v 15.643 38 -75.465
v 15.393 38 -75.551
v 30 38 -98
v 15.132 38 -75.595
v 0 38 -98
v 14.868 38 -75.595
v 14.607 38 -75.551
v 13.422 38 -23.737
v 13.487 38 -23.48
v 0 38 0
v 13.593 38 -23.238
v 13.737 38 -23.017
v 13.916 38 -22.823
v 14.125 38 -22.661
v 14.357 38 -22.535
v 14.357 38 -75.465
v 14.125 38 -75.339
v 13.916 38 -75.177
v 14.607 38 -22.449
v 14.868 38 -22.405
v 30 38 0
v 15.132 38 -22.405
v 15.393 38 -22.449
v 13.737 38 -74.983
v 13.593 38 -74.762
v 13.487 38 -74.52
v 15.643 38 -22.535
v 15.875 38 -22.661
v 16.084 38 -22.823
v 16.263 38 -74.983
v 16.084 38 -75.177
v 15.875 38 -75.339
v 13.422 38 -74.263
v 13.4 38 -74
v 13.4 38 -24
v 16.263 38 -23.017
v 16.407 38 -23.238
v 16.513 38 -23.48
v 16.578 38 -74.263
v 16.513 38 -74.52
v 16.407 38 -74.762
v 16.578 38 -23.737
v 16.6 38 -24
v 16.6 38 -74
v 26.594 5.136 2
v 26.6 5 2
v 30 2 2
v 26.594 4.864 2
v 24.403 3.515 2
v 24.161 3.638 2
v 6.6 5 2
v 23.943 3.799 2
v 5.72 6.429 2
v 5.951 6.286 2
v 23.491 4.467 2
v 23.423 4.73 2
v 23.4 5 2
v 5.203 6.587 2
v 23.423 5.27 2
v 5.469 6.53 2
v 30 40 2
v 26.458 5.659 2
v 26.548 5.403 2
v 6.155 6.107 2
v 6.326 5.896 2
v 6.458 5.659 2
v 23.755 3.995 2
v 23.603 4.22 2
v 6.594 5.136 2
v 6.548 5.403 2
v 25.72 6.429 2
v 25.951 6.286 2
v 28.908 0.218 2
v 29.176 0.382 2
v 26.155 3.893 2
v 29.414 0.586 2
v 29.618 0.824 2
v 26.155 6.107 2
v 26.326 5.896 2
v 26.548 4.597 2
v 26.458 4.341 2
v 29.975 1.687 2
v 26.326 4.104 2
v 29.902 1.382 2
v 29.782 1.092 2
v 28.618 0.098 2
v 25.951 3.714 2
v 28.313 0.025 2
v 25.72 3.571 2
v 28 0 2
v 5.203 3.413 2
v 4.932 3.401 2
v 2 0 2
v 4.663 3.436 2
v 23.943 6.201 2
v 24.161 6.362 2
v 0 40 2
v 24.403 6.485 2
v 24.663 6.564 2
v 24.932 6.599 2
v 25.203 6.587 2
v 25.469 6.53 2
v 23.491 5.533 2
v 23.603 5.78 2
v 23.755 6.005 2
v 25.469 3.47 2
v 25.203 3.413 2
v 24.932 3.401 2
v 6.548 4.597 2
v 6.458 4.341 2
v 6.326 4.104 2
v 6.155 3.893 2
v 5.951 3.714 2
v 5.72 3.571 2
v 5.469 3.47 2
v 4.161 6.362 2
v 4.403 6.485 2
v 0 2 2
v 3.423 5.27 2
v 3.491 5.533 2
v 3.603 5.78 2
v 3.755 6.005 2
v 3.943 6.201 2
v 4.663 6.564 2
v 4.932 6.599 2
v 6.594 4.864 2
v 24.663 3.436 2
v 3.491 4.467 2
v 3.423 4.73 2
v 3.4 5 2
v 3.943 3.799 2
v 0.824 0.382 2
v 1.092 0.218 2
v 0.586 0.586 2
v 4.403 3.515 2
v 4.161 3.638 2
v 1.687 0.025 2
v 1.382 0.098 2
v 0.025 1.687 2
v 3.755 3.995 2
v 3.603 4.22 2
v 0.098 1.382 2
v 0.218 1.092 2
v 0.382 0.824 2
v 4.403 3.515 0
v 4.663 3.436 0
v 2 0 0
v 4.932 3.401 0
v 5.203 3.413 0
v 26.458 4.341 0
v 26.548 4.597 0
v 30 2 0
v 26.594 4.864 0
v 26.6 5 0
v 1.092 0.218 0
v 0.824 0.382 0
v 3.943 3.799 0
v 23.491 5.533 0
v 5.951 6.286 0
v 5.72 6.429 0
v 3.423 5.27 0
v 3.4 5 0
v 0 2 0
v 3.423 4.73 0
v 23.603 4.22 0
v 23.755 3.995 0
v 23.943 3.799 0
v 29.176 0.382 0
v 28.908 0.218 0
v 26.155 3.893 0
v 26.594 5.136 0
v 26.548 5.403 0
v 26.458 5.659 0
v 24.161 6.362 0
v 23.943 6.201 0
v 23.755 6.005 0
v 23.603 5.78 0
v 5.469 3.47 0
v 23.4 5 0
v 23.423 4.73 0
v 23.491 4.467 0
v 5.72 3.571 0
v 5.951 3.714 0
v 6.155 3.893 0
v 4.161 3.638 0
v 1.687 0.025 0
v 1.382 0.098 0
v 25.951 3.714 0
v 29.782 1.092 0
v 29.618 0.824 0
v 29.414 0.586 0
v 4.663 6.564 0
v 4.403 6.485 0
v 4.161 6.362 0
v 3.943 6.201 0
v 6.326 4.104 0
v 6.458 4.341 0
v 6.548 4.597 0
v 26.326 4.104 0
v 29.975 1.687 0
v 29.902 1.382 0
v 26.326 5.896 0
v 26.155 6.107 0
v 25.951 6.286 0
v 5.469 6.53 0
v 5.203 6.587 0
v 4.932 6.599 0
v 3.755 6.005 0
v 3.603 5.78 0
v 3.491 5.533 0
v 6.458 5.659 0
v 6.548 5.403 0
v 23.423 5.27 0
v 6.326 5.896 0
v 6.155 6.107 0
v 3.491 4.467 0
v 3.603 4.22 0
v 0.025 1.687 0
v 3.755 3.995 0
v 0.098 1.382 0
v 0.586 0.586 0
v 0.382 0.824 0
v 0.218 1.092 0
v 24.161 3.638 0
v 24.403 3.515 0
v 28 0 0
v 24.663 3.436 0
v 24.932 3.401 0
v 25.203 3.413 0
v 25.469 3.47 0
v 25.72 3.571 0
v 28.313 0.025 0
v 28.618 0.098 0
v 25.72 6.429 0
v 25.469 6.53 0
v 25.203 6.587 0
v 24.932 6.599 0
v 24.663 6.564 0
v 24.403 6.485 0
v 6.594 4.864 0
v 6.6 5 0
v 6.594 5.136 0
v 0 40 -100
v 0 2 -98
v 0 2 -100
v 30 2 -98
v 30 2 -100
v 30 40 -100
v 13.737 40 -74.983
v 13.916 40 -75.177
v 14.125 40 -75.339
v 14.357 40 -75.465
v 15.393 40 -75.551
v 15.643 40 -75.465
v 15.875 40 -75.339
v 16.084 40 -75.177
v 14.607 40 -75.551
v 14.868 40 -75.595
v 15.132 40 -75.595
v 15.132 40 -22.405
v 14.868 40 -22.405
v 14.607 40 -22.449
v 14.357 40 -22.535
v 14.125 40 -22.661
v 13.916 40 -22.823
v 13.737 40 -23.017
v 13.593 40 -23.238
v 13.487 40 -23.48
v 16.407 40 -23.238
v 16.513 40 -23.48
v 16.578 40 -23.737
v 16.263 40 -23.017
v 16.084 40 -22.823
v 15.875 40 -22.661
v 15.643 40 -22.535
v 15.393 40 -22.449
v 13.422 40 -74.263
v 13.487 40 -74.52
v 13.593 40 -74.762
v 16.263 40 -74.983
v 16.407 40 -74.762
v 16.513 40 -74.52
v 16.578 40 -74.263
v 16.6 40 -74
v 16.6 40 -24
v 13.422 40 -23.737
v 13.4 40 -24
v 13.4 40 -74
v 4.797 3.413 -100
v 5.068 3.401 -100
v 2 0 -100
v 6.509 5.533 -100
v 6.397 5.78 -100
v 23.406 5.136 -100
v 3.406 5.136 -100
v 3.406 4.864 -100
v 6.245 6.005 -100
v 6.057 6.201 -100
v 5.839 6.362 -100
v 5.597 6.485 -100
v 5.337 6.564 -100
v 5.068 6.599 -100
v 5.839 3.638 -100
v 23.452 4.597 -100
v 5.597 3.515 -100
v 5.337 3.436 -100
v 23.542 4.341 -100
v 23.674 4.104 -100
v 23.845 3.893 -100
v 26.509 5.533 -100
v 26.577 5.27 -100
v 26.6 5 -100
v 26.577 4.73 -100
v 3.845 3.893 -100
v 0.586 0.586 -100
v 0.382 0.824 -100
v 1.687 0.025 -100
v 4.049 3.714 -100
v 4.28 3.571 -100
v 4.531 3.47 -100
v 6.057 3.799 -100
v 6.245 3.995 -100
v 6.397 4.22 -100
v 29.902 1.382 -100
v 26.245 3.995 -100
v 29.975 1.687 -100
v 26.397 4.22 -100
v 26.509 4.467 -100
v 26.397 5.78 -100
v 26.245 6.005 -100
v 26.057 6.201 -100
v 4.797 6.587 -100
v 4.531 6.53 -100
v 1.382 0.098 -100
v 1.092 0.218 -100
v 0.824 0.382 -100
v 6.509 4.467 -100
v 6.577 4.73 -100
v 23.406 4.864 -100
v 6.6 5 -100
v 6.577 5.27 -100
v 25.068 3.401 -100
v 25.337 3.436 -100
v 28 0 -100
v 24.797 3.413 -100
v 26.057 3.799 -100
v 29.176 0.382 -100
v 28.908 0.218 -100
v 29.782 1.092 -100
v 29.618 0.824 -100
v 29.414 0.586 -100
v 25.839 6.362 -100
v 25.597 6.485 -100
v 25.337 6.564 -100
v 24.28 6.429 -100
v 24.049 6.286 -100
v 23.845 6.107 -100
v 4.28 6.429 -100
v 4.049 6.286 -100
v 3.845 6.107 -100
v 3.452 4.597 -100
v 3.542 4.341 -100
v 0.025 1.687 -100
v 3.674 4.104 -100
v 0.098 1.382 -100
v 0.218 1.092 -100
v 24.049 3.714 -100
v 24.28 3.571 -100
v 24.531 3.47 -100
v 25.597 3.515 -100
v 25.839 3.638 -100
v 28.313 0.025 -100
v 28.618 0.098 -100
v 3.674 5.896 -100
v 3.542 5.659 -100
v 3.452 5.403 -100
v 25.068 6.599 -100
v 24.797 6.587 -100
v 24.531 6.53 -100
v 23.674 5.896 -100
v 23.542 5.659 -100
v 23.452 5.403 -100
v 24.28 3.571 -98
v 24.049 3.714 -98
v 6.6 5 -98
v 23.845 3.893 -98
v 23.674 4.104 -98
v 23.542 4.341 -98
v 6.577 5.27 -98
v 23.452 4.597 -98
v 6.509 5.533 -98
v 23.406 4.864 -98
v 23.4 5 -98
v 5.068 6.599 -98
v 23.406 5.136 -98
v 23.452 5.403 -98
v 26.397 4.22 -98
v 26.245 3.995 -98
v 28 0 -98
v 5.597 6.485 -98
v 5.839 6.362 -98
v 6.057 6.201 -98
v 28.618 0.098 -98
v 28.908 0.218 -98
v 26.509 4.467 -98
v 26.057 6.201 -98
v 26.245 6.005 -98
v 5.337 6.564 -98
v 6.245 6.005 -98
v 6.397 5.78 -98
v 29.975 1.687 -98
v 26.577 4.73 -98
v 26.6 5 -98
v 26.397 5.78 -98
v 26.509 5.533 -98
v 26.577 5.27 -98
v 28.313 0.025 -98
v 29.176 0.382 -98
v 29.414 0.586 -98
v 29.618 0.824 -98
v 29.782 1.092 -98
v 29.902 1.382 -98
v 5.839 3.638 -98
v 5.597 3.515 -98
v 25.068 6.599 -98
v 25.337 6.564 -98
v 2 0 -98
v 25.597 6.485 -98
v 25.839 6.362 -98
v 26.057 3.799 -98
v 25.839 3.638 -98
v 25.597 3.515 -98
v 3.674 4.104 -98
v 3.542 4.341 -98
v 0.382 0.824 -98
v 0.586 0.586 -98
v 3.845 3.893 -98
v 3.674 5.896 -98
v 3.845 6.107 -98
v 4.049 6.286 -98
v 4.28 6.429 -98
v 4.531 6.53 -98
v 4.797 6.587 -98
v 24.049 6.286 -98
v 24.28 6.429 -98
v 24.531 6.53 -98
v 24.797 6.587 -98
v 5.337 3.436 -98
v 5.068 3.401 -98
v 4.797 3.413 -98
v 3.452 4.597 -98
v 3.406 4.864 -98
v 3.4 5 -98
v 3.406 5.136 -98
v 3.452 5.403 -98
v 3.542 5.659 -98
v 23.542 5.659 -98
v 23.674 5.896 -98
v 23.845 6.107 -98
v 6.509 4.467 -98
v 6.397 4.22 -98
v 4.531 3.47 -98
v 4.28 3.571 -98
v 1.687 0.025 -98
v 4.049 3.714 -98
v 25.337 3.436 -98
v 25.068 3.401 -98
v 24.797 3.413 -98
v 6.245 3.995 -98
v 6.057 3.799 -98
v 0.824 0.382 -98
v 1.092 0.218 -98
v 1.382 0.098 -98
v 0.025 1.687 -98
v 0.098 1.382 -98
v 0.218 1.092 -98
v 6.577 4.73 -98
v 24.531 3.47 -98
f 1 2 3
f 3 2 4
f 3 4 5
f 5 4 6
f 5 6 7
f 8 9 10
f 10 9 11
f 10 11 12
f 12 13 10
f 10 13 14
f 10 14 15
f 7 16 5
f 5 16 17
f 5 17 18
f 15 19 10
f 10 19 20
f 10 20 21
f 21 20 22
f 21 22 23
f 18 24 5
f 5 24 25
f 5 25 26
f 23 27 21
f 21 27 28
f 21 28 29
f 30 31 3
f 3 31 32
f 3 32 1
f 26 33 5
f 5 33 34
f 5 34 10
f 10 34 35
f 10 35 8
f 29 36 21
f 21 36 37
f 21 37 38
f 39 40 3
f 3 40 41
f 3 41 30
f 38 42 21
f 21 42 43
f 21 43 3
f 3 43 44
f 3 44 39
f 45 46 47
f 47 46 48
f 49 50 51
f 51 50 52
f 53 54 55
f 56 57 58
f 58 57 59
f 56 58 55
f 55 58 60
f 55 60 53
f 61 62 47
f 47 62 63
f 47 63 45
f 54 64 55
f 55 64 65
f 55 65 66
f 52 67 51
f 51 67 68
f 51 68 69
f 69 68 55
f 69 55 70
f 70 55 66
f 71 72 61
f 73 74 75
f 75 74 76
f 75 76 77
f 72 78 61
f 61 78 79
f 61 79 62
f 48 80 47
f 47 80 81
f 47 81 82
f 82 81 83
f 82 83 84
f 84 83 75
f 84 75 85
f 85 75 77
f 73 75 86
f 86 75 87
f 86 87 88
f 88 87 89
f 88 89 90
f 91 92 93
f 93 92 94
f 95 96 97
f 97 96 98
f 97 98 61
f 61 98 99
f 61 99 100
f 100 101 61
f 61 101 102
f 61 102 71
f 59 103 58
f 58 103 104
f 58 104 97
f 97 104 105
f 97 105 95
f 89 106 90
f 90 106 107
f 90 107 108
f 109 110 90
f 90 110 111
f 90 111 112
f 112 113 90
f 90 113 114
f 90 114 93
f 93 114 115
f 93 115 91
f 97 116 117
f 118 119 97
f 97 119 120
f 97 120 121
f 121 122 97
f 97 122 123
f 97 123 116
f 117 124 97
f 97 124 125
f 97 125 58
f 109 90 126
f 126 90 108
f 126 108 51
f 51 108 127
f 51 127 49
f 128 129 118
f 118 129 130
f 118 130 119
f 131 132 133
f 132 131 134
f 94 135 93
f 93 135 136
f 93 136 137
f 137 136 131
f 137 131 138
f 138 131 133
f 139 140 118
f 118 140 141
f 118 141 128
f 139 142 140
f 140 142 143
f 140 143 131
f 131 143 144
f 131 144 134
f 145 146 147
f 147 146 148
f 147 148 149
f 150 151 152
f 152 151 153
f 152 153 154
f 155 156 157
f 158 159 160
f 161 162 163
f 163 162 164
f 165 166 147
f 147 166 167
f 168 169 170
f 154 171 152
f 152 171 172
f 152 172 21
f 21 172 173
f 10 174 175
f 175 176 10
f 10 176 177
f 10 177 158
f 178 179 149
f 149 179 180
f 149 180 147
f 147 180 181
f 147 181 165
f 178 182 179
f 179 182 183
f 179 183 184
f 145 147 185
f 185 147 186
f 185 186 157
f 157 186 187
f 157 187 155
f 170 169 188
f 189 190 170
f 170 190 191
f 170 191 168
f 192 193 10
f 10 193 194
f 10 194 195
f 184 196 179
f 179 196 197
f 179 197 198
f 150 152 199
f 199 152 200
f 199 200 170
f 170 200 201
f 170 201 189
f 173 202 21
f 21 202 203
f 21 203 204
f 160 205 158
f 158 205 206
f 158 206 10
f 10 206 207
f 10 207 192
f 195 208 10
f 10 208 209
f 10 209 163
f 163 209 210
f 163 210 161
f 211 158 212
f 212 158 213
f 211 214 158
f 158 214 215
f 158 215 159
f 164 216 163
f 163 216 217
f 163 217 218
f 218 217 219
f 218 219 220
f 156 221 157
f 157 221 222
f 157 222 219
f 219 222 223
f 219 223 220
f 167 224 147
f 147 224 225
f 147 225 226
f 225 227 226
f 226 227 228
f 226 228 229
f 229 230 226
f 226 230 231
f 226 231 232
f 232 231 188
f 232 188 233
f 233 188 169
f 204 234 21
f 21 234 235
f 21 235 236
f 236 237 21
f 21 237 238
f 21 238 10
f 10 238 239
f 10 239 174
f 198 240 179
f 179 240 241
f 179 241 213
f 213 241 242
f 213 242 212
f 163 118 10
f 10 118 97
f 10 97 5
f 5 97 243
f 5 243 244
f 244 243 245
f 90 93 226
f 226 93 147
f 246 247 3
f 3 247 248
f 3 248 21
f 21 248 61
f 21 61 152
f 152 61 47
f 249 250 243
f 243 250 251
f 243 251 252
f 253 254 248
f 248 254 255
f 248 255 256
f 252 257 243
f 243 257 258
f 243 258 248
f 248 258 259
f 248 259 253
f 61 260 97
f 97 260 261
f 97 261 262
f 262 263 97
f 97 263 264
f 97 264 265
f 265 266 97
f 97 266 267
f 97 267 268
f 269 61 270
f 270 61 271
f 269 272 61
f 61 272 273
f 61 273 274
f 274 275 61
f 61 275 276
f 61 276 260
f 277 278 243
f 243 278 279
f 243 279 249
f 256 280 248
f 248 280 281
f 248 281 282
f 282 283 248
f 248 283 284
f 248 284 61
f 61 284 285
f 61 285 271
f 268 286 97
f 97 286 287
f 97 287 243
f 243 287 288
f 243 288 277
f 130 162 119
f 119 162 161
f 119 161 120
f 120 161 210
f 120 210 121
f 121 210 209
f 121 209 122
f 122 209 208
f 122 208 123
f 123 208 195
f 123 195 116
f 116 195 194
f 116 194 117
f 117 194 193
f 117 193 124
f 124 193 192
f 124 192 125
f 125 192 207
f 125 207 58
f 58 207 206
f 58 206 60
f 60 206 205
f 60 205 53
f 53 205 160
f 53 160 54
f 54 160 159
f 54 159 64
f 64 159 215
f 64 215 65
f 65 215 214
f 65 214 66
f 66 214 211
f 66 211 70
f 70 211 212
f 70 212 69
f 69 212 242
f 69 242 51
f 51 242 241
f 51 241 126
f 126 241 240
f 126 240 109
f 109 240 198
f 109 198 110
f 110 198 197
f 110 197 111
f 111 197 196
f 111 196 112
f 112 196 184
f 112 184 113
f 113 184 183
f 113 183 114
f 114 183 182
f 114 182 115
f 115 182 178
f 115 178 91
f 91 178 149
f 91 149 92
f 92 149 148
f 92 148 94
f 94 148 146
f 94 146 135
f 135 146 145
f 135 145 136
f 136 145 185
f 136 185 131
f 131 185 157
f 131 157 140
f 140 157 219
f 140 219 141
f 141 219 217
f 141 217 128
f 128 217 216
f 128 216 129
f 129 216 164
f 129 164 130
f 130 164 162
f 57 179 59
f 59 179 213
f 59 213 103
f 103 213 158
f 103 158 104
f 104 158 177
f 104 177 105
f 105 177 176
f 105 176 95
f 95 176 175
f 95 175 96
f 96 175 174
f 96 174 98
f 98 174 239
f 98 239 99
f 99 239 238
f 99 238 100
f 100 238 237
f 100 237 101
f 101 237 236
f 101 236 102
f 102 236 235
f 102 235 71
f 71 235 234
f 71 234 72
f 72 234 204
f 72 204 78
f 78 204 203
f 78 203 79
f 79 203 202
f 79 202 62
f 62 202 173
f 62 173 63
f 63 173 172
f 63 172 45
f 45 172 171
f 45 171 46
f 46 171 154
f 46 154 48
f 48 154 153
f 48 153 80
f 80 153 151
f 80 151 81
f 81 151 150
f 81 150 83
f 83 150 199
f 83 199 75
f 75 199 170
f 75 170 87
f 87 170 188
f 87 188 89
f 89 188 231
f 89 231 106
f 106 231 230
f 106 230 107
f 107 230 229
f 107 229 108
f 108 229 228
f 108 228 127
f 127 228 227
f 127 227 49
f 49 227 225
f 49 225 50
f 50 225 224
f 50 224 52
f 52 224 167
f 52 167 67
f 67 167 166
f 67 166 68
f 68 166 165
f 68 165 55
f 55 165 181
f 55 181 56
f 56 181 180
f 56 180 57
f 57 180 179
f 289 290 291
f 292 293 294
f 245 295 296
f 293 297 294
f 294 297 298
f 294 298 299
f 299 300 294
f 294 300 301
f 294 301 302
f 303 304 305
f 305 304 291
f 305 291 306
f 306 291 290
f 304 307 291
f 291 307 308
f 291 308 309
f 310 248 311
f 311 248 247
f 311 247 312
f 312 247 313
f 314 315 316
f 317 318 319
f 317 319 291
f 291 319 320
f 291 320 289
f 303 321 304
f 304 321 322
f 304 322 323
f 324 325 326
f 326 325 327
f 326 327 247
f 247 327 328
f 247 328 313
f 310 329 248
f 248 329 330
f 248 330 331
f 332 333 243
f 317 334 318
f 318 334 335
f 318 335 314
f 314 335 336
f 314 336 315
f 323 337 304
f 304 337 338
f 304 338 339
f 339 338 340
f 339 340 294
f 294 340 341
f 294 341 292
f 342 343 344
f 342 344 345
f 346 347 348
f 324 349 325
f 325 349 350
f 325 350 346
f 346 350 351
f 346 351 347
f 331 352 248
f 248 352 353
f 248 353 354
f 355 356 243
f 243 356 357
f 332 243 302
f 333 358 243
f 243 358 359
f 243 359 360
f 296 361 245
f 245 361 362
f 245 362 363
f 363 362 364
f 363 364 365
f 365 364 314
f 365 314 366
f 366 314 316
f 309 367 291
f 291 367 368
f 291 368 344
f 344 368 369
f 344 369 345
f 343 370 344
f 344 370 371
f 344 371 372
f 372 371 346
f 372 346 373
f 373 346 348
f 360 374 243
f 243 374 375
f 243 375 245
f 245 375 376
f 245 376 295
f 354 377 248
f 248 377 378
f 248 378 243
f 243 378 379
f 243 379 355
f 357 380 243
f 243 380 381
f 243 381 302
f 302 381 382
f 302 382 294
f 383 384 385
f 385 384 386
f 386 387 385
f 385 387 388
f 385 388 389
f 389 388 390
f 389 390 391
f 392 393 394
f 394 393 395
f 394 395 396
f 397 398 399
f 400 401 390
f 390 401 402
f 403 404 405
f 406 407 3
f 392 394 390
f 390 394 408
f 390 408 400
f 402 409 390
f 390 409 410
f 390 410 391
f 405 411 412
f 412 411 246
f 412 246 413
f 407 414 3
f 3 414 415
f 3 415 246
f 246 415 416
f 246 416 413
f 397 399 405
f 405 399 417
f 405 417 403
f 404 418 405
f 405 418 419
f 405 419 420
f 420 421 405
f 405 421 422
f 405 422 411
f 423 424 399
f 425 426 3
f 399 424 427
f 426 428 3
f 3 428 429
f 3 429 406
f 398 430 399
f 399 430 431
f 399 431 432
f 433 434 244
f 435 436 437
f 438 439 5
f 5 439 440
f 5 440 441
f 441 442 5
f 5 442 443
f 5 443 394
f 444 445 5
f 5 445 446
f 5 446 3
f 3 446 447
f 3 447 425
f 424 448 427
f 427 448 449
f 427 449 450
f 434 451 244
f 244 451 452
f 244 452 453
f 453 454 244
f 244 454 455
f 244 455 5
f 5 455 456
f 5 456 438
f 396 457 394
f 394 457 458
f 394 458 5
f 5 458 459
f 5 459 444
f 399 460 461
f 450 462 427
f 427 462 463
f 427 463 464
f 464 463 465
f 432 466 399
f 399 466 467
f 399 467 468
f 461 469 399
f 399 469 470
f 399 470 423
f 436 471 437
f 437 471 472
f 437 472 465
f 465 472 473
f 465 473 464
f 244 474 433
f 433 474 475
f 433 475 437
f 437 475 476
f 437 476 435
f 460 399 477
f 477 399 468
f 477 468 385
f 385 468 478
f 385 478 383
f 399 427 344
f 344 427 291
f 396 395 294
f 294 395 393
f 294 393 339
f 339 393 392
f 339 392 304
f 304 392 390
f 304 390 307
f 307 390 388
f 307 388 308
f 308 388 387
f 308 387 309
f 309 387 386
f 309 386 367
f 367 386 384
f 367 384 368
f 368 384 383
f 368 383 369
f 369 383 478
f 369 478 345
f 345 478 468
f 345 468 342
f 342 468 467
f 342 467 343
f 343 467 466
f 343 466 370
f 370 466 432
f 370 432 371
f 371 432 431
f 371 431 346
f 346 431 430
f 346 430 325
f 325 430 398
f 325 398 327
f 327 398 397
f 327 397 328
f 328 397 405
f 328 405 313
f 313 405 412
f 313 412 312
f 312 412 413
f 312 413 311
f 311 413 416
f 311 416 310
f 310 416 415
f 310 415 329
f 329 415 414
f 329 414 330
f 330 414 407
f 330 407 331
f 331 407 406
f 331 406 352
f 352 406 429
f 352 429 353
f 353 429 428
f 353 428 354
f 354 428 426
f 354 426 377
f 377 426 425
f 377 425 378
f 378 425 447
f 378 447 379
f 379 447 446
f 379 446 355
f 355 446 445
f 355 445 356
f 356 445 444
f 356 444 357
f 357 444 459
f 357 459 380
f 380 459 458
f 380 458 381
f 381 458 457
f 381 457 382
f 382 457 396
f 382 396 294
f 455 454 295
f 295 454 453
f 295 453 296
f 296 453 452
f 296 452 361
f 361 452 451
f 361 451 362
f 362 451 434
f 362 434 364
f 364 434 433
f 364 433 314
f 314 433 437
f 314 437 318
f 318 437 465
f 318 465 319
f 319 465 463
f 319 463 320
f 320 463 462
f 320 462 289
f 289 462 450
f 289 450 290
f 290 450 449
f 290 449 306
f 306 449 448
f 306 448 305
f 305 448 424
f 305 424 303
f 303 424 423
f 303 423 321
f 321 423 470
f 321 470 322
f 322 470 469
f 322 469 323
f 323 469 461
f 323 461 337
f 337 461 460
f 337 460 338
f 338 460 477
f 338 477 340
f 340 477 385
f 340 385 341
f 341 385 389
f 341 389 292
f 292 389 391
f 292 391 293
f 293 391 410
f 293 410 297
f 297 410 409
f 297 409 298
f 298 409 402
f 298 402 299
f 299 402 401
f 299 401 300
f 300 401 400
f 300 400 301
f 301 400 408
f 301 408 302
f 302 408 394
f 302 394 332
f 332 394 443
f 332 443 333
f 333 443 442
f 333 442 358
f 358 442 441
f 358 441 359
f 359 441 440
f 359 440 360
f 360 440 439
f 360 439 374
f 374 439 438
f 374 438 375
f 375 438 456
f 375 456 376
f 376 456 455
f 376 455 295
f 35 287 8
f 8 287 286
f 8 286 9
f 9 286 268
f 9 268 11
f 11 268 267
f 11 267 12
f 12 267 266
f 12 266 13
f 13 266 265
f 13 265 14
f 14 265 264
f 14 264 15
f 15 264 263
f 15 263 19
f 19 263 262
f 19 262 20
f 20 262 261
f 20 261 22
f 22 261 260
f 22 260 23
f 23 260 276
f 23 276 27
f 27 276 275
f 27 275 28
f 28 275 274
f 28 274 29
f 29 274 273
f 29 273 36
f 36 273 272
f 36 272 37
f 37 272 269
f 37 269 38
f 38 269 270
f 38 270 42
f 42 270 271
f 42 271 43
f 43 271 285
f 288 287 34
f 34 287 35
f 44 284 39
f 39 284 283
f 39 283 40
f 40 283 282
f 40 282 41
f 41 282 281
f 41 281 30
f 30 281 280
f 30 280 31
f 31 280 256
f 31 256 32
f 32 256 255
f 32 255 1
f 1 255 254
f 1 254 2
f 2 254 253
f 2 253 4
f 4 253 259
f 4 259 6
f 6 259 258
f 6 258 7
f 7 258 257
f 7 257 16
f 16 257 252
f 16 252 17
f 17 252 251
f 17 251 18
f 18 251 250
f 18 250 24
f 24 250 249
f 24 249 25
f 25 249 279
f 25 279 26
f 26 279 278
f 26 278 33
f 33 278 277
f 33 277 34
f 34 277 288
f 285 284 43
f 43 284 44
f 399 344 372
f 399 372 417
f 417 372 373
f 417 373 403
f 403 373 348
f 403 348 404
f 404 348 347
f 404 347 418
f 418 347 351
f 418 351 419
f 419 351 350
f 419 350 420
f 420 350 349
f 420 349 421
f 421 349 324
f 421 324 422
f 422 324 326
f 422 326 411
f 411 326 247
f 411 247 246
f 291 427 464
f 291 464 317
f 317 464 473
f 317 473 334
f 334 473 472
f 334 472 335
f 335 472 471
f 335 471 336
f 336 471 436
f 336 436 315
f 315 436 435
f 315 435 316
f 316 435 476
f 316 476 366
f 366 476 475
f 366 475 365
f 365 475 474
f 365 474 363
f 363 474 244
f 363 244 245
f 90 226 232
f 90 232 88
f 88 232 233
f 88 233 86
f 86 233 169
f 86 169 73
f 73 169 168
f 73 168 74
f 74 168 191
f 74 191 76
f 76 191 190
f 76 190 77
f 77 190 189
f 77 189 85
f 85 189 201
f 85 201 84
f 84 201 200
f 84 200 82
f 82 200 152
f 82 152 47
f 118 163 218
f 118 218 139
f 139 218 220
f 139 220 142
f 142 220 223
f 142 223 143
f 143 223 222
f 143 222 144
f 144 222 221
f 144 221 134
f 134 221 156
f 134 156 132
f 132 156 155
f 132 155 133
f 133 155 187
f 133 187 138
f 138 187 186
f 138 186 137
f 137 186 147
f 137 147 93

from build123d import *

# Parameters (mm, degrees)
SKETCH_1_W          = 30
SKETCH_1_H          = 40
SKETCH_1_R          = 1.6
EXTRUDE_1_DEPTH     = 2
SKETCH_3_W          = 30
SKETCH_3_H          = 2
EXTRUDE_2_DEPTH     = 100
SKETCH_5_W          = 30
SKETCH_5_H          = 2
EXTRUDE_4_DEPTH     = 38
SKETCH_6_R          = 1.6
CUT_EXTRUDE_1_DEPTH = 114.595774569
CUT_EXTRUDE_2_DEPTH = 2
FILLET_1_R          = 2


with BuildPart() as part:
    # 草图1 → 凸台-拉伸1 (new body)
    with BuildSketch(Plane.XY):
        with Locations((15, 20)):
            Rectangle(SKETCH_1_W, SKETCH_1_H)
        with Locations((5, 5)):
            Circle(SKETCH_1_R, mode=Mode.SUBTRACT)
        with Locations((25, 5)):
            Circle(SKETCH_1_R, mode=Mode.SUBTRACT)
    extrude(amount=EXTRUDE_1_DEPTH)

    # 草图3 → 凸台-拉伸2 (add)
    with BuildSketch(Plane(origin=(0, 0, 0), x_dir=(-1, 0, 0), z_dir=(0, 0, -1))):
        with Locations((-15, 39)):
            Rectangle(SKETCH_3_W, SKETCH_3_H)
    extrude(amount=EXTRUDE_2_DEPTH)

    # 草图5 → 凸台-拉伸4 (add)
    with BuildSketch(Plane.XZ.offset(-38)):
        with Locations((15, -99)):
            Rectangle(SKETCH_5_W, SKETCH_5_H)
    extrude(amount=EXTRUDE_4_DEPTH)

    # 草图6 → 切除-拉伸1 (cut, through all)
    with BuildSketch(Plane.XY.offset(2)):
        with Locations((5, 5)):
            Circle(SKETCH_6_R)
        with Locations((25, 5)):
            Circle(SKETCH_6_R)
    extrude(amount=-CUT_EXTRUDE_1_DEPTH, mode=Mode.SUBTRACT)

    # 草图7 → 切除-拉伸2 (cut)
    with BuildSketch(Plane(origin=(0, 40, 0), x_dir=(1, 0, 0), z_dir=(0, 1, 0))):
        with BuildLine():
            Line((13.4, 24), (13.4, 74))
            ThreePointArc((13.4, 74), (15, 75.6), (16.6, 74))
            Line((16.6, 74), (16.6, 24))
            ThreePointArc((16.6, 24), (15, 22.4), (13.4, 24))
        make_face()
    extrude(amount=-CUT_EXTRUDE_2_DEPTH, mode=Mode.SUBTRACT)

    # 圆角1
    fillet_1_edges = [part.edges().sort_by_distance(p)[0] for p in [
        (0, 0, -99),
        (30, 0, -99),
        (30, 0, 1),
        (0, 0, 1),
    ]]
    fillet(fillet_1_edges, radius=FILLET_1_R)


solid = part.part
